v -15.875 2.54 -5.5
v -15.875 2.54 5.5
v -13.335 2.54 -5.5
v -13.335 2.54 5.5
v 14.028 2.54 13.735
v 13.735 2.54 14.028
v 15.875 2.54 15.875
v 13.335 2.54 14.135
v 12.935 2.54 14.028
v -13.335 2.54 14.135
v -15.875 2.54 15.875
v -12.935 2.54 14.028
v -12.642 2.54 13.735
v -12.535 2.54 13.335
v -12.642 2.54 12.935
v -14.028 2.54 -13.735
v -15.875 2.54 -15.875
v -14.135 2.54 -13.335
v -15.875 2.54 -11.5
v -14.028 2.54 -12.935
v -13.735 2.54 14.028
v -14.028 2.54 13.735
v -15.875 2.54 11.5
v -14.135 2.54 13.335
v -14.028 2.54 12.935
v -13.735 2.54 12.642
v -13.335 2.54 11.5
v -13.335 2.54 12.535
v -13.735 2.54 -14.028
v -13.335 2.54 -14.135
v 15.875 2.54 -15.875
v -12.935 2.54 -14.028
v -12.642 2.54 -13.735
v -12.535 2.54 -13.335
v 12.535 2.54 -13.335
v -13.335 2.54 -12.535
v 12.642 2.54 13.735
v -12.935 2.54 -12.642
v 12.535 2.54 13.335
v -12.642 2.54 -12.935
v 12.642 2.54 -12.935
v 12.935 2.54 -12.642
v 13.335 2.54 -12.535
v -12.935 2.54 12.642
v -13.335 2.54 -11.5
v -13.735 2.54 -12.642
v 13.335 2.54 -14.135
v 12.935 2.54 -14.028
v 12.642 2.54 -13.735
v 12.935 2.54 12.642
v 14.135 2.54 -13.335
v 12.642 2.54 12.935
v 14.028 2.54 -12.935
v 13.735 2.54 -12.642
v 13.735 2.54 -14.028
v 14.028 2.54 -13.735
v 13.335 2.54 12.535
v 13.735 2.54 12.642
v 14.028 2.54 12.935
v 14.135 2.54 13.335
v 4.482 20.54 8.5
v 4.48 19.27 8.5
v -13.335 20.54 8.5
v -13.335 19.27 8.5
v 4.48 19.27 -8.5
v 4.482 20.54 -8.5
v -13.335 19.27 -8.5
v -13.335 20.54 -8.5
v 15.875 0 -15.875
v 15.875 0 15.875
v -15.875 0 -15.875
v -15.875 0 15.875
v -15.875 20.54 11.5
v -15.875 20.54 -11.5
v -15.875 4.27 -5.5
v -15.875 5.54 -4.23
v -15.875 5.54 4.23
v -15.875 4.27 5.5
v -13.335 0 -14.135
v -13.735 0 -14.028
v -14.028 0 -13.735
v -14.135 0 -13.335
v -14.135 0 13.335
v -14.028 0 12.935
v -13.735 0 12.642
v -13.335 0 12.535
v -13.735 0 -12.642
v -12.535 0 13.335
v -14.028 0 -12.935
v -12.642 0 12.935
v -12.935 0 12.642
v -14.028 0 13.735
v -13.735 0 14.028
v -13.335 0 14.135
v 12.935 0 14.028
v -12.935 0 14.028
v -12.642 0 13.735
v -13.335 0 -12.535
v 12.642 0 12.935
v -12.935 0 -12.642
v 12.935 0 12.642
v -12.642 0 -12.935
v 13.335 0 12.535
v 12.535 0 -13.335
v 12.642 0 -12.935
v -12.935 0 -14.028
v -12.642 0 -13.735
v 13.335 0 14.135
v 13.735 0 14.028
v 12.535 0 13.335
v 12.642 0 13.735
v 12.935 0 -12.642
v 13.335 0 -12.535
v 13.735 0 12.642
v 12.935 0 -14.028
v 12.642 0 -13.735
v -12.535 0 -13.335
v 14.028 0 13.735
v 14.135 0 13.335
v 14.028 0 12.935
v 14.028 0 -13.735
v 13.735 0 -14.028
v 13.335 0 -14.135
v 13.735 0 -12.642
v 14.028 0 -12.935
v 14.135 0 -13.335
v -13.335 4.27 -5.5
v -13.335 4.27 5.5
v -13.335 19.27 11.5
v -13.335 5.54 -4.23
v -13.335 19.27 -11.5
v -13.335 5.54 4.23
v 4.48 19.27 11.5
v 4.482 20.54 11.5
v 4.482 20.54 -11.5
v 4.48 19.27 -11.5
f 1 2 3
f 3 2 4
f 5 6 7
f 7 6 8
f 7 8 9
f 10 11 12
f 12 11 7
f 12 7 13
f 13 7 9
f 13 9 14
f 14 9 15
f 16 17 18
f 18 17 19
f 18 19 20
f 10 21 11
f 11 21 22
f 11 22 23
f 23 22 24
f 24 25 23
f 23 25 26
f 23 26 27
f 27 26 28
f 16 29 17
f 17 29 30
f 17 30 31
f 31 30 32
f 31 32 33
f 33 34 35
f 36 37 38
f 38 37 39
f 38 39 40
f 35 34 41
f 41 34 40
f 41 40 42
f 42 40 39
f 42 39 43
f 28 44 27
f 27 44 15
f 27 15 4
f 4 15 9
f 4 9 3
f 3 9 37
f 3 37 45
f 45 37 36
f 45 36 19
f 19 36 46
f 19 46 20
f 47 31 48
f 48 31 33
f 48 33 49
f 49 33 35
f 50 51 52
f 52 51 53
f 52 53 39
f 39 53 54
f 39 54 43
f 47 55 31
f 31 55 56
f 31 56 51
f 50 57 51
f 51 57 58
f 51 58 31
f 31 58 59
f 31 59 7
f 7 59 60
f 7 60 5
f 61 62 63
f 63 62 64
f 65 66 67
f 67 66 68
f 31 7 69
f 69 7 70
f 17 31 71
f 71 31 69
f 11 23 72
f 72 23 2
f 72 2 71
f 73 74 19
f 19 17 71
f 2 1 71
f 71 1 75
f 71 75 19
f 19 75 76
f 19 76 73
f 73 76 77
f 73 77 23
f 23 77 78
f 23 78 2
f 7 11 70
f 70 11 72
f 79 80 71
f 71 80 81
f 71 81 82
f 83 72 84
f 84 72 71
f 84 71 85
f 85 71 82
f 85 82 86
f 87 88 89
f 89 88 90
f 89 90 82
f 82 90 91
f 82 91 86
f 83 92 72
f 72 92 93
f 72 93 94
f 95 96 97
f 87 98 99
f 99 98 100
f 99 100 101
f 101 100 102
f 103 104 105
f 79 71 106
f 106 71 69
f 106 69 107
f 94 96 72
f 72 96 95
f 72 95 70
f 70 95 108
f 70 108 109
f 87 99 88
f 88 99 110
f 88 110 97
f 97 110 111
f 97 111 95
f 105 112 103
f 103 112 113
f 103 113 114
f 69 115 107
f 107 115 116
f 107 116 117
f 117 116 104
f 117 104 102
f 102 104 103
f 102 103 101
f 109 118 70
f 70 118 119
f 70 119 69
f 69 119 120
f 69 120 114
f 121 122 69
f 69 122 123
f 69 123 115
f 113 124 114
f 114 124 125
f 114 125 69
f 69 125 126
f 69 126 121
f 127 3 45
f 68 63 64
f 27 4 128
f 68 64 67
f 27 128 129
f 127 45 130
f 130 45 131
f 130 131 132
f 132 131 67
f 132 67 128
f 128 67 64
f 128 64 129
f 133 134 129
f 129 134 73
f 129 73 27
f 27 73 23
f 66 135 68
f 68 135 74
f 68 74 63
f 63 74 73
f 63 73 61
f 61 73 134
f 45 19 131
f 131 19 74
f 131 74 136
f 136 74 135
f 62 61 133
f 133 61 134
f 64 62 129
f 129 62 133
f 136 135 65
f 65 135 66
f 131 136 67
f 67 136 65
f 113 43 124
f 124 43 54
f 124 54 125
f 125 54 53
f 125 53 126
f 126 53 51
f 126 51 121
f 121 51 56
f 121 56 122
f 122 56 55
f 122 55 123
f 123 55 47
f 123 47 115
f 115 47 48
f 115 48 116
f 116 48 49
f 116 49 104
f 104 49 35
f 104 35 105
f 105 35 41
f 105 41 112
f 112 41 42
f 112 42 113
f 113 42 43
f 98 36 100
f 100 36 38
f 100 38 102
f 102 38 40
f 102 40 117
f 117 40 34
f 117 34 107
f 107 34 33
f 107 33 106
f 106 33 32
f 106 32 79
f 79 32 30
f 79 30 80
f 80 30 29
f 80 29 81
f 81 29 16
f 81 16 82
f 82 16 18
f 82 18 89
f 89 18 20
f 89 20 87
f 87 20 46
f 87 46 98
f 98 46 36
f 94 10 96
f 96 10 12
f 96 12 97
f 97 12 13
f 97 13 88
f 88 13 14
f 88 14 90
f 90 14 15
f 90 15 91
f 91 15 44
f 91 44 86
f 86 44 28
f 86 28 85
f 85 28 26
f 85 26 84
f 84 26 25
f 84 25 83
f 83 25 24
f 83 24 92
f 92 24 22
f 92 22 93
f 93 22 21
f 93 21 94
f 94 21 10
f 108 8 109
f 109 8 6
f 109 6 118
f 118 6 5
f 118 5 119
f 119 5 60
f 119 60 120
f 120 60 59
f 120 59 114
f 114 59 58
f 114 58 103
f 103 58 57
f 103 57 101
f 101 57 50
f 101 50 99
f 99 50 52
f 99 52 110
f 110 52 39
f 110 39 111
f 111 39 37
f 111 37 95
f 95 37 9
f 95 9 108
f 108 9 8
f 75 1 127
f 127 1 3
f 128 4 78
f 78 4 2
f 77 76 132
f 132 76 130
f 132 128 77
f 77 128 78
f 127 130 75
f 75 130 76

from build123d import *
from build123d.topology import SkipClean

# Parameters (mm, degrees)
SKETCH1_W           = 31.75
SKETCH1_H           = 31.75
BOSS_EXTRUDE1_DEPTH = 2.54
SKETCH3_W           = 2.54
SKETCH3_H           = 3
BOSS_EXTRUDE2_DEPTH = 18
BOSS_EXTRUDE3_DEPTH = 3.000000096
LPATTERN1_COUNT     = 2
LPATTERN1_PITCH     = 19.999999878
SKETCH7_R           = 0.8
CUT_EXTRUDE1_DEPTH  = 29.775532141
SKETCH8_W           = 2.54
SKETCH8_H           = 18
BOSS_EXTRUDE4_DEPTH = 17.000000036
SKETCH10_W          = 11
SKETCH10_H          = 3
CUT_EXTRUDE2_DEPTH  = 2.54
CHAMFER1_SIZE       = 1.27


with BuildPart() as part:
    # Sketch1 → Boss-Extrude1 (new body)
    with BuildSketch(Plane(origin=(0, 0, 0), x_dir=(1, 0, 0), z_dir=(0, 1, 0))):
        Rectangle(SKETCH1_W, SKETCH1_H)
    extrude(amount=BOSS_EXTRUDE1_DEPTH)

    # Sketch3 → Boss-Extrude2 (add)
    with BuildSketch(Plane(origin=(0, 2.54, 0), x_dir=(1, 0, 0), z_dir=(0, 1, 0))):
        with Locations((-14.605, -10.000000018)):
            Rectangle(SKETCH3_W, SKETCH3_H)
        with Locations((-14.605, 10.000000018)):
            Rectangle(SKETCH3_W, SKETCH3_H)
    extrude(amount=BOSS_EXTRUDE2_DEPTH)

    # Sketch6 → Boss-Extrude3 (add)
    with BuildSketch(Plane.XY.offset(11.500000018)):
        Polygon((-13.335, 20.54), (-13.335, 19.27), (4.479844611, 19.27), (4.482298438, 20.54), align=None)
    boss_extrude3 = extrude(amount=-BOSS_EXTRUDE3_DEPTH)

    # LPattern1: Boss-Extrude3 ×2
    with SkipClean():  # the faces are left unmerged after this step: merging them gives an invalid solid
        with Locations(*[(0, 0, -i * LPATTERN1_PITCH) for i in range(1, LPATTERN1_COUNT)]):
            add(boss_extrude3)

    # Sketch7 → Cut-Extrude1 (cut, through all)
    with SkipClean():  # the faces are left unmerged after this step: merging them gives an invalid solid
        with BuildSketch(Plane(origin=(0, 2.54, 0), x_dir=(1, 0, 0), z_dir=(0, 1, 0))):
            with Locations(Location((13.335, 13.335, 0), (0, 0, 270))):
                Circle(SKETCH7_R)
            with Locations(Location((-13.335, 13.335, 0), (0, 0, 270))):
                Circle(SKETCH7_R)
            with Locations(Location((-13.335, -13.335, 0), (0, 0, 270))):
                Circle(SKETCH7_R)
            with Locations(Location((13.335, -13.335, 0), (0, 0, 270))):
                Circle(SKETCH7_R)
        extrude(amount=-CUT_EXTRUDE1_DEPTH, mode=Mode.SUBTRACT)

    # Sketch8 → Boss-Extrude4 (add)
    with BuildSketch(Plane(origin=(0, 0, 8.500000018), x_dir=(-1, 0, 0), z_dir=(0, 0, -1))):
        with Locations((14.605, 11.54)):
            Rectangle(SKETCH8_W, SKETCH8_H)
    extrude(amount=BOSS_EXTRUDE4_DEPTH)

    # Sketch10 → Cut-Extrude2 (cut)
    with BuildSketch(Plane(origin=(-13.335, 0, 0), x_dir=(0, 0, -1), z_dir=(1, 0, 0))):
        with Locations((0, 4.04)):
            Rectangle(SKETCH10_W, SKETCH10_H)
    extrude(amount=-CUT_EXTRUDE2_DEPTH, mode=Mode.SUBTRACT)

    # Chamfer1
    chamfer1_edges = [part.edges().sort_by_distance(p)[0] for p in [
        (-14.605, 5.54, -5.5),
        (-14.605, 5.54, 5.5),
    ]]
    chamfer(chamfer1_edges, length=CHAMFER1_SIZE)


solid = part.part
